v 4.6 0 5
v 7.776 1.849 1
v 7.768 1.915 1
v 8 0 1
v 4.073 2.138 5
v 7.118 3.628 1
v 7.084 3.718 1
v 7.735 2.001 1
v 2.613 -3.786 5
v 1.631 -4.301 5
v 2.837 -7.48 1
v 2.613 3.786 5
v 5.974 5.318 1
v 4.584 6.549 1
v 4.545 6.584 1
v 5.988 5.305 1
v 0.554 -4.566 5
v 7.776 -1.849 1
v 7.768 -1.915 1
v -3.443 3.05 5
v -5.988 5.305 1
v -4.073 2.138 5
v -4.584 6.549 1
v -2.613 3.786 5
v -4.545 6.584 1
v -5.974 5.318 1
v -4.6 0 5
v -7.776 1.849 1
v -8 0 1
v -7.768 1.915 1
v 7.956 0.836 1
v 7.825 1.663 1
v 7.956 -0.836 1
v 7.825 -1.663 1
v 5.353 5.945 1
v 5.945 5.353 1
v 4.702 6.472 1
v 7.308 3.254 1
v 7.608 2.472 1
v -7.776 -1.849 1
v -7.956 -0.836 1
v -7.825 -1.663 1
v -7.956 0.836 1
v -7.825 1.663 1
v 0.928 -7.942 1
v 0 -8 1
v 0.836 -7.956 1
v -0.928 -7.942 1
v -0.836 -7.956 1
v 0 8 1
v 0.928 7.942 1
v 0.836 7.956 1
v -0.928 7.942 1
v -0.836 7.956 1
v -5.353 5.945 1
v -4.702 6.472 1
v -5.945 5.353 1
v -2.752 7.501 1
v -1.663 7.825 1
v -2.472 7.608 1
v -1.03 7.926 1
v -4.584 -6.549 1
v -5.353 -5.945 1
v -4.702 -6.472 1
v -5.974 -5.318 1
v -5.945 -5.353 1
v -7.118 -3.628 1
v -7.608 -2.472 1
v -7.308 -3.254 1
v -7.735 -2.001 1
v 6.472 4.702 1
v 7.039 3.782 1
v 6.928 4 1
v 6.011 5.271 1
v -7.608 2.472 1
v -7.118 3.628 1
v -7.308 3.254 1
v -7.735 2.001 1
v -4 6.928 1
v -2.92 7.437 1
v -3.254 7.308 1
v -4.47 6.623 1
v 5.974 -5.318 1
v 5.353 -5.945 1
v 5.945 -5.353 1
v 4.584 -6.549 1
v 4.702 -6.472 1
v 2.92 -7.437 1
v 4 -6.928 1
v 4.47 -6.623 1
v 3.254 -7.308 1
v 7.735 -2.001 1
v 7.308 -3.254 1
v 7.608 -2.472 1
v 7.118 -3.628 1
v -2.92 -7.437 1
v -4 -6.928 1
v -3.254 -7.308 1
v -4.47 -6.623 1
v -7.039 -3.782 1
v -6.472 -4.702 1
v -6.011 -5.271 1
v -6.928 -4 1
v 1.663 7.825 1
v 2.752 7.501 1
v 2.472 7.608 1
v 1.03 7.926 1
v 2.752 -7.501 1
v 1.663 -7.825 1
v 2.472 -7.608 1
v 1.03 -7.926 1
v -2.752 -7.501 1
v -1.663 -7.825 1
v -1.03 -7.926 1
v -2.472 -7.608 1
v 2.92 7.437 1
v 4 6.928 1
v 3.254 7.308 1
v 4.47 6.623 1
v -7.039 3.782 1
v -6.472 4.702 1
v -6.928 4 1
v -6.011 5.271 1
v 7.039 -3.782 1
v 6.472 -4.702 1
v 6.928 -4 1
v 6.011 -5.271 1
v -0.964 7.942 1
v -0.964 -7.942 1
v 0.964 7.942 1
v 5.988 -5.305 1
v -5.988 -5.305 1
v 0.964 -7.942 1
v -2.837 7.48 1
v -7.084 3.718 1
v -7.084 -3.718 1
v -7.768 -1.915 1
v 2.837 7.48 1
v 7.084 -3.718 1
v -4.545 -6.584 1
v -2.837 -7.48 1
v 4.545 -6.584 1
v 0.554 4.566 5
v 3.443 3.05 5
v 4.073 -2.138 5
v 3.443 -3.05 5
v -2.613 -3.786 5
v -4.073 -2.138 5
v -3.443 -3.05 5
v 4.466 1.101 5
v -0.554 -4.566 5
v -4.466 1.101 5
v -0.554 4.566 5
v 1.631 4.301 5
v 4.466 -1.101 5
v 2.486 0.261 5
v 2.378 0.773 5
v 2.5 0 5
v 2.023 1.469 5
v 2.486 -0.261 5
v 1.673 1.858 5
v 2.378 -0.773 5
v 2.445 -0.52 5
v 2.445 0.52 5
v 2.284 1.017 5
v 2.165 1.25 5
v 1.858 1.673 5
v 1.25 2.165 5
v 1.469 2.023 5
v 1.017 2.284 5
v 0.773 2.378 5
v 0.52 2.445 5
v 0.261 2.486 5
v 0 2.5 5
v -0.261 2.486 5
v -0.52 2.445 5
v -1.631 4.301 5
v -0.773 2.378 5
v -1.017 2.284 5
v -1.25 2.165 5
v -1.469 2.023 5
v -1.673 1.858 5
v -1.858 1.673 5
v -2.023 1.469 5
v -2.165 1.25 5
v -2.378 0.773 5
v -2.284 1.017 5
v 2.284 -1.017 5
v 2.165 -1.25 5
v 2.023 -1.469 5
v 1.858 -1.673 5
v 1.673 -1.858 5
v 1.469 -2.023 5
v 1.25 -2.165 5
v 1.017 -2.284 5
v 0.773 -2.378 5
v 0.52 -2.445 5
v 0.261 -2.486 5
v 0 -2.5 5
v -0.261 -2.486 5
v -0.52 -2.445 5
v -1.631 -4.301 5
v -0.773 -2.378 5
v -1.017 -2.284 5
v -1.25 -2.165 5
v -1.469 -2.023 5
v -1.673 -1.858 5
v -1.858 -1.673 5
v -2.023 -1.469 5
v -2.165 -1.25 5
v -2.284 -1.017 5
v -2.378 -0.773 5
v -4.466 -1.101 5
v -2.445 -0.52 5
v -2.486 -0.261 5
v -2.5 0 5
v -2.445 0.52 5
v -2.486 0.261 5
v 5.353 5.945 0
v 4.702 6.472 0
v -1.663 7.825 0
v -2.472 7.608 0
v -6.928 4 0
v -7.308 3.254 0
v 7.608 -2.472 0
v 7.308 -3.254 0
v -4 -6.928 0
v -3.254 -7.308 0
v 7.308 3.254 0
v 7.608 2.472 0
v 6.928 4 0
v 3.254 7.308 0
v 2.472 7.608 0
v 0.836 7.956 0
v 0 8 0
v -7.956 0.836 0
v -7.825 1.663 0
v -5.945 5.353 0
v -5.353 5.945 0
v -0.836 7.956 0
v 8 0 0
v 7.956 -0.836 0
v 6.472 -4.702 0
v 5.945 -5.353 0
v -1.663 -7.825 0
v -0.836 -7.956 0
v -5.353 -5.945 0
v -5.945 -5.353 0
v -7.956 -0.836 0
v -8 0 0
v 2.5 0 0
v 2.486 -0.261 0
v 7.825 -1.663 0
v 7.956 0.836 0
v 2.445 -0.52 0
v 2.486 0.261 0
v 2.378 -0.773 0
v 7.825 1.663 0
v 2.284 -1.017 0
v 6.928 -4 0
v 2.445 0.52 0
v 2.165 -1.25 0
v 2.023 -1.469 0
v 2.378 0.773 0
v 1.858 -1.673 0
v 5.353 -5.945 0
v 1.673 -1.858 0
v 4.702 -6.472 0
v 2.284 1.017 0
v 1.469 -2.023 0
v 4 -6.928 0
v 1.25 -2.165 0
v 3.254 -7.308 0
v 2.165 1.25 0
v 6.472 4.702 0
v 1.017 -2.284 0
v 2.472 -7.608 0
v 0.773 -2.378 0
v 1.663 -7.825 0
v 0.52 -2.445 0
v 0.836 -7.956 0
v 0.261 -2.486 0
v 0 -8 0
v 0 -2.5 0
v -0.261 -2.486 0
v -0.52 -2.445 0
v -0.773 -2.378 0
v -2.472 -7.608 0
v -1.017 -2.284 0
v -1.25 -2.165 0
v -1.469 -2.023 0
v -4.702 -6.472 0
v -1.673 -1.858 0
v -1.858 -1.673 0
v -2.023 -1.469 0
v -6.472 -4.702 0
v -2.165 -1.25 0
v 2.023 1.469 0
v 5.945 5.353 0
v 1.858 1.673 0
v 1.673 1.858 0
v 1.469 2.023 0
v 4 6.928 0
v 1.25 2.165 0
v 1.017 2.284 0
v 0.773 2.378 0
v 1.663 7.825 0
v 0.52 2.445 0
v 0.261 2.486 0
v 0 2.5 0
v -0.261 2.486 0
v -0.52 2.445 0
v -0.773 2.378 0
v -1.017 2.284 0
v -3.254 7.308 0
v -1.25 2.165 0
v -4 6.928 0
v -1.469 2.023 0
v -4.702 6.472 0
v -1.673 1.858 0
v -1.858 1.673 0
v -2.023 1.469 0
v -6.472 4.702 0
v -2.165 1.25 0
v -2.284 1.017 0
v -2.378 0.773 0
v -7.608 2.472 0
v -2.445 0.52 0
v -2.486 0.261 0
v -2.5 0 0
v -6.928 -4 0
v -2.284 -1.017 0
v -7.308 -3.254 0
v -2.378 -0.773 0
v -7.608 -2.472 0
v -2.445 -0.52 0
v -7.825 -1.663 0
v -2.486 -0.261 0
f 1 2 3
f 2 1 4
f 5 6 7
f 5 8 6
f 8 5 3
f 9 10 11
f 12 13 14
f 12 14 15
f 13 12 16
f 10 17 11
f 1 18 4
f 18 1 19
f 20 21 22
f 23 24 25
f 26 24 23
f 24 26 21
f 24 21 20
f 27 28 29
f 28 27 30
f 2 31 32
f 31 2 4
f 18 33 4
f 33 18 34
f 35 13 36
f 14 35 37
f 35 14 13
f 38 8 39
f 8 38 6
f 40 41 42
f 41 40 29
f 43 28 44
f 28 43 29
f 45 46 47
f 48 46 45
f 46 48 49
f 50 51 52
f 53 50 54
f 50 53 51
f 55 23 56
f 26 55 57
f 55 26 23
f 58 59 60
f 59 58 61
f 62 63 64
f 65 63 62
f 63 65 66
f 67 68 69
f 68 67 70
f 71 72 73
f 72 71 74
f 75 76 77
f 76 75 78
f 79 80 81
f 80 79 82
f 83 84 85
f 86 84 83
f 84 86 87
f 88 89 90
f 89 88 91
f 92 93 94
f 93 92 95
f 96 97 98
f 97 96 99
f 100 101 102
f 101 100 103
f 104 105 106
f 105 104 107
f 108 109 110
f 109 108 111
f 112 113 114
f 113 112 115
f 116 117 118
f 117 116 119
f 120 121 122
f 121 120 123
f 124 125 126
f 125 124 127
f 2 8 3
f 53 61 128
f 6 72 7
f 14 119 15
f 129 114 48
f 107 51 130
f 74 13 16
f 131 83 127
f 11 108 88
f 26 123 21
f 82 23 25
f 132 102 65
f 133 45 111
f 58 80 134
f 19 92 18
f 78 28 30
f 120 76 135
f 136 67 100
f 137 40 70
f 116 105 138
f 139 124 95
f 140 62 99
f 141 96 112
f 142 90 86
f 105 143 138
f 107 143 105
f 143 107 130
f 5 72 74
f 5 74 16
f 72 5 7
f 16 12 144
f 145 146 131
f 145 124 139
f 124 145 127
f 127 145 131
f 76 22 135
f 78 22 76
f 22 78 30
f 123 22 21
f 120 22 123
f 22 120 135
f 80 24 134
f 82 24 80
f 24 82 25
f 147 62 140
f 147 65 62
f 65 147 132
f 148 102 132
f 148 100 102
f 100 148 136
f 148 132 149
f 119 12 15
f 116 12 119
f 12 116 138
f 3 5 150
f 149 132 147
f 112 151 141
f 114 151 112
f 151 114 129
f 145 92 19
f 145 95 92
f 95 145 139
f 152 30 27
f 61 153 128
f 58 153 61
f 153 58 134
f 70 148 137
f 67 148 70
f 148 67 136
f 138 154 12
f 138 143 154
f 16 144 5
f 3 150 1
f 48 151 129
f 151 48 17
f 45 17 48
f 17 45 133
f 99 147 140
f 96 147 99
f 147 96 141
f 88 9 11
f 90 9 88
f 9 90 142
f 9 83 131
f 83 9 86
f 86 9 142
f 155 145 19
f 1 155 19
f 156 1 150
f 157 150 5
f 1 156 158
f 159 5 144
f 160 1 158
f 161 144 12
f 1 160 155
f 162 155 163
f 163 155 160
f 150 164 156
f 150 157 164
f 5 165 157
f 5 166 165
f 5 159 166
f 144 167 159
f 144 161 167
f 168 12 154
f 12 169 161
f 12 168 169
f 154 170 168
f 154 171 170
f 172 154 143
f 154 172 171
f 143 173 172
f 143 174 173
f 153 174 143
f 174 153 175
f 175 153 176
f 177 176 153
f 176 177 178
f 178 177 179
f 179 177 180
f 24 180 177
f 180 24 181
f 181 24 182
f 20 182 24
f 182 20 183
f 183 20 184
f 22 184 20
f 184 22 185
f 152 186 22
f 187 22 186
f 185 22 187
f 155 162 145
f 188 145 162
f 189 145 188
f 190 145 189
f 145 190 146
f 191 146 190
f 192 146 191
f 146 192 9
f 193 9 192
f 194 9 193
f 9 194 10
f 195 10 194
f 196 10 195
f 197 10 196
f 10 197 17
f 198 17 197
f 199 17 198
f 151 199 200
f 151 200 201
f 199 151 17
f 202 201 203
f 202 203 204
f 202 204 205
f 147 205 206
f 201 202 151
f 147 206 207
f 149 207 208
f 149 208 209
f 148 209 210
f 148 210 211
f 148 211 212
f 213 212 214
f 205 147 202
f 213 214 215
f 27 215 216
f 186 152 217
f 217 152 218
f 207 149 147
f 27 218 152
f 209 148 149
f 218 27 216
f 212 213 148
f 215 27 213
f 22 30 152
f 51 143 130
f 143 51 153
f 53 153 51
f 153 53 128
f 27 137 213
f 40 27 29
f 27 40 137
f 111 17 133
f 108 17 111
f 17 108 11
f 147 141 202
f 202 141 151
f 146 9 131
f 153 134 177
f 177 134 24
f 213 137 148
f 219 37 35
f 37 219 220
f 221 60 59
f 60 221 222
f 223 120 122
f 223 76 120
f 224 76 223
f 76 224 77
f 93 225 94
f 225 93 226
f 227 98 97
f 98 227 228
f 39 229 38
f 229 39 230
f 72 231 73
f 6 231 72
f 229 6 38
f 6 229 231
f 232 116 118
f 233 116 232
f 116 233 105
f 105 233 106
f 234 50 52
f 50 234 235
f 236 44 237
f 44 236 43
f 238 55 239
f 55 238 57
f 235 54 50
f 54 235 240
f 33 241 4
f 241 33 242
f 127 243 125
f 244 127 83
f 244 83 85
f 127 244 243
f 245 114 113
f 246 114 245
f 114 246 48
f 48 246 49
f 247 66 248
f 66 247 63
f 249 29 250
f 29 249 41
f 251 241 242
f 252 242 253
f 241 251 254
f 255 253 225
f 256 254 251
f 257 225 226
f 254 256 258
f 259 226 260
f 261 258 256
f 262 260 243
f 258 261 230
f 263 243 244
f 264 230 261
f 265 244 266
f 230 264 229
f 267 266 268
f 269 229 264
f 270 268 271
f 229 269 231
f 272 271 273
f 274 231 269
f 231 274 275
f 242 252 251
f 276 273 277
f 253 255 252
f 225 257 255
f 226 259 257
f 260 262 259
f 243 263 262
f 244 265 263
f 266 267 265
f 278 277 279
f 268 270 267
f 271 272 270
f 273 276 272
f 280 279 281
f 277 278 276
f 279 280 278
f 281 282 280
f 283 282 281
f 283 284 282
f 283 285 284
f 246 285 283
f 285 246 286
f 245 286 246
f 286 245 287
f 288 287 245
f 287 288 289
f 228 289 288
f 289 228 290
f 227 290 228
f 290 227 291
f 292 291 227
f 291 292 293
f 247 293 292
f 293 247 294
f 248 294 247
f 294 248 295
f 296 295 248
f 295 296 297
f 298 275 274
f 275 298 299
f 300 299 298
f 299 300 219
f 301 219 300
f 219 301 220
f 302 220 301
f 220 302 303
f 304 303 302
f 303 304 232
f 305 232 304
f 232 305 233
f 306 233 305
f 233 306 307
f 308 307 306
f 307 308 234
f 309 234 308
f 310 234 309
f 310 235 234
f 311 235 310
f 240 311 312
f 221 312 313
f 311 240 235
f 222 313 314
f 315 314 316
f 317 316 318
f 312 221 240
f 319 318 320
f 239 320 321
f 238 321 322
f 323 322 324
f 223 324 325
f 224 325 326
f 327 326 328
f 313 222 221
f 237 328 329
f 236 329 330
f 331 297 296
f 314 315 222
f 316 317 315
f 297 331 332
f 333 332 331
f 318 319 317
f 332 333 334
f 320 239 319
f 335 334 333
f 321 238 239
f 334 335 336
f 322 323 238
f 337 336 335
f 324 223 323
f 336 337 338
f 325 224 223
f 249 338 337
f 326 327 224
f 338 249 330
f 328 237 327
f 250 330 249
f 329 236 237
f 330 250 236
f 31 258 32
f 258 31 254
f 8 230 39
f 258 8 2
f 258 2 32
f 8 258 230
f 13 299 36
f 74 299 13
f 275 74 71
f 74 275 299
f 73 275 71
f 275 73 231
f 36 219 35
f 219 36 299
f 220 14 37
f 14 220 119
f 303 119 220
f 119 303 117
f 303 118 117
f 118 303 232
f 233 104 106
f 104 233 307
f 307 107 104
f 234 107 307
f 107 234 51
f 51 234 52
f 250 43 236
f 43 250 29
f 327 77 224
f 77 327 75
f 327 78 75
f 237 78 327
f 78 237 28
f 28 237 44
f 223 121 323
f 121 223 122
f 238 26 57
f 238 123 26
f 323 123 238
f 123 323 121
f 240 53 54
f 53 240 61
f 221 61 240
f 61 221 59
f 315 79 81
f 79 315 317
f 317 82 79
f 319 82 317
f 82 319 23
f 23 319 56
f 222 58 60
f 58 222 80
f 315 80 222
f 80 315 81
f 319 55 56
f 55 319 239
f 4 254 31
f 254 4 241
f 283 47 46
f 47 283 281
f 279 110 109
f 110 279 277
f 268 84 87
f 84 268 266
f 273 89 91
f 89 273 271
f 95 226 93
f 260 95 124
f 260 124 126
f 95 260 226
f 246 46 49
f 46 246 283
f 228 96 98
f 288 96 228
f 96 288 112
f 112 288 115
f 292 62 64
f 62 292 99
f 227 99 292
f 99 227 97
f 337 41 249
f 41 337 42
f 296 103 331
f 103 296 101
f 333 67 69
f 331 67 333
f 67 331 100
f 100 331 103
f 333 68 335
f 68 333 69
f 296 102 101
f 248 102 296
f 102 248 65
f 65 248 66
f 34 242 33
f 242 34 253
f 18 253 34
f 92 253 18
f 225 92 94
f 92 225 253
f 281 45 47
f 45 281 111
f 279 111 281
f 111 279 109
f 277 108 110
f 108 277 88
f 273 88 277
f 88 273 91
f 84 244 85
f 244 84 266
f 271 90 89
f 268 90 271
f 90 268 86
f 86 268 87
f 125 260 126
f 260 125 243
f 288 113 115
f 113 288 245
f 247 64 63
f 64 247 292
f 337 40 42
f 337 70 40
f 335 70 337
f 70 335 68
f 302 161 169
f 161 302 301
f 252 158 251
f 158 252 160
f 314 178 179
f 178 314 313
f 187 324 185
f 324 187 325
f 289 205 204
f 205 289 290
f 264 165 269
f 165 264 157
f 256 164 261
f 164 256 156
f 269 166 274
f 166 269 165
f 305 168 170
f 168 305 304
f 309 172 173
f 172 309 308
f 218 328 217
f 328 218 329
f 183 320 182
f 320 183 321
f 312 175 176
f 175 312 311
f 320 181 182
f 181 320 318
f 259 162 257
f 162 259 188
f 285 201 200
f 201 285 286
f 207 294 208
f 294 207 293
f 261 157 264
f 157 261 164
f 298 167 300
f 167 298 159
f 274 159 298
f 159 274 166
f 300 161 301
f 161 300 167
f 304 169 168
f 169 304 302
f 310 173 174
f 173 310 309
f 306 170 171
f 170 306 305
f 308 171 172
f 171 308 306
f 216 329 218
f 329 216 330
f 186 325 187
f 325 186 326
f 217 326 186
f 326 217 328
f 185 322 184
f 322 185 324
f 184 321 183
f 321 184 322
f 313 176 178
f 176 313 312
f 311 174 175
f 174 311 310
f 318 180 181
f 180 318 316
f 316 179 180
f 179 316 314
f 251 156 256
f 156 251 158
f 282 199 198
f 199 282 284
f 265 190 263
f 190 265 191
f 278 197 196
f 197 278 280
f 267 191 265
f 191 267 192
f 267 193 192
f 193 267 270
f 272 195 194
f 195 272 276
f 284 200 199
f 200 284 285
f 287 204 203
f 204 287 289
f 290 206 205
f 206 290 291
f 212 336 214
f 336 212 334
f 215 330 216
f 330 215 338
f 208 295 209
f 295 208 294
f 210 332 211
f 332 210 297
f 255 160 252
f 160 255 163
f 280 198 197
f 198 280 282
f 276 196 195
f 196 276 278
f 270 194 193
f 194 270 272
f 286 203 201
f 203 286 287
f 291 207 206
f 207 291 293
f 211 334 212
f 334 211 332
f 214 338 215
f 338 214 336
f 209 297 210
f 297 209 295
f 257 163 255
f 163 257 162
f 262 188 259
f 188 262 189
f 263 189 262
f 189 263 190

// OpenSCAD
// PRUSA iteration3
// Z screw cover
// GNU GPL v3
// Josef Průša <iam@josefprusa.cz> and contributors
// http://www.reprap.org/wiki/Prusa_Mendel
// http://prusamendel.org


/* translate(v=[-2.5, 0, 4.3]) rotate([0,90,0])  cylinder(r1=0.6, r2=0.4, h = 1, $fn=60); */
/* translate(v=[2.5, 0, 4.3]) rotate([0,-90,0])  cylinder(r1=0.6, r2=0.4, h = 1, $fn=60); */
/* translate(v=[0, 2.5, 4.3]) rotate([90,0,0])  cylinder(r1=0.6, r2=0.4, h = 1, $fn=60); */
/* translate(v=[0, -2.5, 4.3]) rotate([-90,0,0])  cylinder(r1=0.6, r2=0.4, h = 1, $fn=60); */

/* translate(v=[-2.5, 0.5, 4.0]) rotate([0,90,0])  cylinder(r1=0.6, r2=0.3, h = 0.8, $fn=60); */
/* translate(v=[2.5, -0.5, 4.0]) rotate([0,-90,0])  cylinder(r1=0.6, r2=0.3, h = 0.8, $fn=60); */
/* translate(v=[0.5, 2.5, 4.0]) rotate([90,0,0])  cylinder(r1=0.6, r2=0.3, h = 0.8, $fn=60); */
/* translate(v=[-0.5, -2.5, 4.0]) rotate([-90,0,0])  cylinder(r1=0.6, r2=0.3, h = 0.8, $fn=60); */

/* translate(v=[-2.5, 1, 3.7]) rotate([0,90,0])  cylinder(r1=0.5, r2=0.3, h = 0.6, $fn=60); */
/* translate(v=[2.5, -1, 3.7]) rotate([0,-90,0])  cylinder(r1=0.5, r2=0.3, h = 0.6, $fn=60); */
/* translate(v=[1, 2.5, 3.7]) rotate([90,0,0])  cylinder(r1=0.5, r2=0.3, h = 0.6, $fn=60); */
/* translate(v=[-1, -2.5, 3.7]) rotate([-90,0,0])  cylinder(r1=0.5, r2=0.3, h = 0.6, $fn=60); */

difference()
{
    union()
        {
            translate(v=[0, 0, 1]) cylinder(r1=8, r2=4.6, h = 4);
            cylinder(r=8, h = 1, $fn=60);
        }
        translate(v=[0, 0, -1]) cylinder(r=2.5, h = 7, $fn=60);
        cylinder(r=2.5, h = 1, $fn=60);
}
